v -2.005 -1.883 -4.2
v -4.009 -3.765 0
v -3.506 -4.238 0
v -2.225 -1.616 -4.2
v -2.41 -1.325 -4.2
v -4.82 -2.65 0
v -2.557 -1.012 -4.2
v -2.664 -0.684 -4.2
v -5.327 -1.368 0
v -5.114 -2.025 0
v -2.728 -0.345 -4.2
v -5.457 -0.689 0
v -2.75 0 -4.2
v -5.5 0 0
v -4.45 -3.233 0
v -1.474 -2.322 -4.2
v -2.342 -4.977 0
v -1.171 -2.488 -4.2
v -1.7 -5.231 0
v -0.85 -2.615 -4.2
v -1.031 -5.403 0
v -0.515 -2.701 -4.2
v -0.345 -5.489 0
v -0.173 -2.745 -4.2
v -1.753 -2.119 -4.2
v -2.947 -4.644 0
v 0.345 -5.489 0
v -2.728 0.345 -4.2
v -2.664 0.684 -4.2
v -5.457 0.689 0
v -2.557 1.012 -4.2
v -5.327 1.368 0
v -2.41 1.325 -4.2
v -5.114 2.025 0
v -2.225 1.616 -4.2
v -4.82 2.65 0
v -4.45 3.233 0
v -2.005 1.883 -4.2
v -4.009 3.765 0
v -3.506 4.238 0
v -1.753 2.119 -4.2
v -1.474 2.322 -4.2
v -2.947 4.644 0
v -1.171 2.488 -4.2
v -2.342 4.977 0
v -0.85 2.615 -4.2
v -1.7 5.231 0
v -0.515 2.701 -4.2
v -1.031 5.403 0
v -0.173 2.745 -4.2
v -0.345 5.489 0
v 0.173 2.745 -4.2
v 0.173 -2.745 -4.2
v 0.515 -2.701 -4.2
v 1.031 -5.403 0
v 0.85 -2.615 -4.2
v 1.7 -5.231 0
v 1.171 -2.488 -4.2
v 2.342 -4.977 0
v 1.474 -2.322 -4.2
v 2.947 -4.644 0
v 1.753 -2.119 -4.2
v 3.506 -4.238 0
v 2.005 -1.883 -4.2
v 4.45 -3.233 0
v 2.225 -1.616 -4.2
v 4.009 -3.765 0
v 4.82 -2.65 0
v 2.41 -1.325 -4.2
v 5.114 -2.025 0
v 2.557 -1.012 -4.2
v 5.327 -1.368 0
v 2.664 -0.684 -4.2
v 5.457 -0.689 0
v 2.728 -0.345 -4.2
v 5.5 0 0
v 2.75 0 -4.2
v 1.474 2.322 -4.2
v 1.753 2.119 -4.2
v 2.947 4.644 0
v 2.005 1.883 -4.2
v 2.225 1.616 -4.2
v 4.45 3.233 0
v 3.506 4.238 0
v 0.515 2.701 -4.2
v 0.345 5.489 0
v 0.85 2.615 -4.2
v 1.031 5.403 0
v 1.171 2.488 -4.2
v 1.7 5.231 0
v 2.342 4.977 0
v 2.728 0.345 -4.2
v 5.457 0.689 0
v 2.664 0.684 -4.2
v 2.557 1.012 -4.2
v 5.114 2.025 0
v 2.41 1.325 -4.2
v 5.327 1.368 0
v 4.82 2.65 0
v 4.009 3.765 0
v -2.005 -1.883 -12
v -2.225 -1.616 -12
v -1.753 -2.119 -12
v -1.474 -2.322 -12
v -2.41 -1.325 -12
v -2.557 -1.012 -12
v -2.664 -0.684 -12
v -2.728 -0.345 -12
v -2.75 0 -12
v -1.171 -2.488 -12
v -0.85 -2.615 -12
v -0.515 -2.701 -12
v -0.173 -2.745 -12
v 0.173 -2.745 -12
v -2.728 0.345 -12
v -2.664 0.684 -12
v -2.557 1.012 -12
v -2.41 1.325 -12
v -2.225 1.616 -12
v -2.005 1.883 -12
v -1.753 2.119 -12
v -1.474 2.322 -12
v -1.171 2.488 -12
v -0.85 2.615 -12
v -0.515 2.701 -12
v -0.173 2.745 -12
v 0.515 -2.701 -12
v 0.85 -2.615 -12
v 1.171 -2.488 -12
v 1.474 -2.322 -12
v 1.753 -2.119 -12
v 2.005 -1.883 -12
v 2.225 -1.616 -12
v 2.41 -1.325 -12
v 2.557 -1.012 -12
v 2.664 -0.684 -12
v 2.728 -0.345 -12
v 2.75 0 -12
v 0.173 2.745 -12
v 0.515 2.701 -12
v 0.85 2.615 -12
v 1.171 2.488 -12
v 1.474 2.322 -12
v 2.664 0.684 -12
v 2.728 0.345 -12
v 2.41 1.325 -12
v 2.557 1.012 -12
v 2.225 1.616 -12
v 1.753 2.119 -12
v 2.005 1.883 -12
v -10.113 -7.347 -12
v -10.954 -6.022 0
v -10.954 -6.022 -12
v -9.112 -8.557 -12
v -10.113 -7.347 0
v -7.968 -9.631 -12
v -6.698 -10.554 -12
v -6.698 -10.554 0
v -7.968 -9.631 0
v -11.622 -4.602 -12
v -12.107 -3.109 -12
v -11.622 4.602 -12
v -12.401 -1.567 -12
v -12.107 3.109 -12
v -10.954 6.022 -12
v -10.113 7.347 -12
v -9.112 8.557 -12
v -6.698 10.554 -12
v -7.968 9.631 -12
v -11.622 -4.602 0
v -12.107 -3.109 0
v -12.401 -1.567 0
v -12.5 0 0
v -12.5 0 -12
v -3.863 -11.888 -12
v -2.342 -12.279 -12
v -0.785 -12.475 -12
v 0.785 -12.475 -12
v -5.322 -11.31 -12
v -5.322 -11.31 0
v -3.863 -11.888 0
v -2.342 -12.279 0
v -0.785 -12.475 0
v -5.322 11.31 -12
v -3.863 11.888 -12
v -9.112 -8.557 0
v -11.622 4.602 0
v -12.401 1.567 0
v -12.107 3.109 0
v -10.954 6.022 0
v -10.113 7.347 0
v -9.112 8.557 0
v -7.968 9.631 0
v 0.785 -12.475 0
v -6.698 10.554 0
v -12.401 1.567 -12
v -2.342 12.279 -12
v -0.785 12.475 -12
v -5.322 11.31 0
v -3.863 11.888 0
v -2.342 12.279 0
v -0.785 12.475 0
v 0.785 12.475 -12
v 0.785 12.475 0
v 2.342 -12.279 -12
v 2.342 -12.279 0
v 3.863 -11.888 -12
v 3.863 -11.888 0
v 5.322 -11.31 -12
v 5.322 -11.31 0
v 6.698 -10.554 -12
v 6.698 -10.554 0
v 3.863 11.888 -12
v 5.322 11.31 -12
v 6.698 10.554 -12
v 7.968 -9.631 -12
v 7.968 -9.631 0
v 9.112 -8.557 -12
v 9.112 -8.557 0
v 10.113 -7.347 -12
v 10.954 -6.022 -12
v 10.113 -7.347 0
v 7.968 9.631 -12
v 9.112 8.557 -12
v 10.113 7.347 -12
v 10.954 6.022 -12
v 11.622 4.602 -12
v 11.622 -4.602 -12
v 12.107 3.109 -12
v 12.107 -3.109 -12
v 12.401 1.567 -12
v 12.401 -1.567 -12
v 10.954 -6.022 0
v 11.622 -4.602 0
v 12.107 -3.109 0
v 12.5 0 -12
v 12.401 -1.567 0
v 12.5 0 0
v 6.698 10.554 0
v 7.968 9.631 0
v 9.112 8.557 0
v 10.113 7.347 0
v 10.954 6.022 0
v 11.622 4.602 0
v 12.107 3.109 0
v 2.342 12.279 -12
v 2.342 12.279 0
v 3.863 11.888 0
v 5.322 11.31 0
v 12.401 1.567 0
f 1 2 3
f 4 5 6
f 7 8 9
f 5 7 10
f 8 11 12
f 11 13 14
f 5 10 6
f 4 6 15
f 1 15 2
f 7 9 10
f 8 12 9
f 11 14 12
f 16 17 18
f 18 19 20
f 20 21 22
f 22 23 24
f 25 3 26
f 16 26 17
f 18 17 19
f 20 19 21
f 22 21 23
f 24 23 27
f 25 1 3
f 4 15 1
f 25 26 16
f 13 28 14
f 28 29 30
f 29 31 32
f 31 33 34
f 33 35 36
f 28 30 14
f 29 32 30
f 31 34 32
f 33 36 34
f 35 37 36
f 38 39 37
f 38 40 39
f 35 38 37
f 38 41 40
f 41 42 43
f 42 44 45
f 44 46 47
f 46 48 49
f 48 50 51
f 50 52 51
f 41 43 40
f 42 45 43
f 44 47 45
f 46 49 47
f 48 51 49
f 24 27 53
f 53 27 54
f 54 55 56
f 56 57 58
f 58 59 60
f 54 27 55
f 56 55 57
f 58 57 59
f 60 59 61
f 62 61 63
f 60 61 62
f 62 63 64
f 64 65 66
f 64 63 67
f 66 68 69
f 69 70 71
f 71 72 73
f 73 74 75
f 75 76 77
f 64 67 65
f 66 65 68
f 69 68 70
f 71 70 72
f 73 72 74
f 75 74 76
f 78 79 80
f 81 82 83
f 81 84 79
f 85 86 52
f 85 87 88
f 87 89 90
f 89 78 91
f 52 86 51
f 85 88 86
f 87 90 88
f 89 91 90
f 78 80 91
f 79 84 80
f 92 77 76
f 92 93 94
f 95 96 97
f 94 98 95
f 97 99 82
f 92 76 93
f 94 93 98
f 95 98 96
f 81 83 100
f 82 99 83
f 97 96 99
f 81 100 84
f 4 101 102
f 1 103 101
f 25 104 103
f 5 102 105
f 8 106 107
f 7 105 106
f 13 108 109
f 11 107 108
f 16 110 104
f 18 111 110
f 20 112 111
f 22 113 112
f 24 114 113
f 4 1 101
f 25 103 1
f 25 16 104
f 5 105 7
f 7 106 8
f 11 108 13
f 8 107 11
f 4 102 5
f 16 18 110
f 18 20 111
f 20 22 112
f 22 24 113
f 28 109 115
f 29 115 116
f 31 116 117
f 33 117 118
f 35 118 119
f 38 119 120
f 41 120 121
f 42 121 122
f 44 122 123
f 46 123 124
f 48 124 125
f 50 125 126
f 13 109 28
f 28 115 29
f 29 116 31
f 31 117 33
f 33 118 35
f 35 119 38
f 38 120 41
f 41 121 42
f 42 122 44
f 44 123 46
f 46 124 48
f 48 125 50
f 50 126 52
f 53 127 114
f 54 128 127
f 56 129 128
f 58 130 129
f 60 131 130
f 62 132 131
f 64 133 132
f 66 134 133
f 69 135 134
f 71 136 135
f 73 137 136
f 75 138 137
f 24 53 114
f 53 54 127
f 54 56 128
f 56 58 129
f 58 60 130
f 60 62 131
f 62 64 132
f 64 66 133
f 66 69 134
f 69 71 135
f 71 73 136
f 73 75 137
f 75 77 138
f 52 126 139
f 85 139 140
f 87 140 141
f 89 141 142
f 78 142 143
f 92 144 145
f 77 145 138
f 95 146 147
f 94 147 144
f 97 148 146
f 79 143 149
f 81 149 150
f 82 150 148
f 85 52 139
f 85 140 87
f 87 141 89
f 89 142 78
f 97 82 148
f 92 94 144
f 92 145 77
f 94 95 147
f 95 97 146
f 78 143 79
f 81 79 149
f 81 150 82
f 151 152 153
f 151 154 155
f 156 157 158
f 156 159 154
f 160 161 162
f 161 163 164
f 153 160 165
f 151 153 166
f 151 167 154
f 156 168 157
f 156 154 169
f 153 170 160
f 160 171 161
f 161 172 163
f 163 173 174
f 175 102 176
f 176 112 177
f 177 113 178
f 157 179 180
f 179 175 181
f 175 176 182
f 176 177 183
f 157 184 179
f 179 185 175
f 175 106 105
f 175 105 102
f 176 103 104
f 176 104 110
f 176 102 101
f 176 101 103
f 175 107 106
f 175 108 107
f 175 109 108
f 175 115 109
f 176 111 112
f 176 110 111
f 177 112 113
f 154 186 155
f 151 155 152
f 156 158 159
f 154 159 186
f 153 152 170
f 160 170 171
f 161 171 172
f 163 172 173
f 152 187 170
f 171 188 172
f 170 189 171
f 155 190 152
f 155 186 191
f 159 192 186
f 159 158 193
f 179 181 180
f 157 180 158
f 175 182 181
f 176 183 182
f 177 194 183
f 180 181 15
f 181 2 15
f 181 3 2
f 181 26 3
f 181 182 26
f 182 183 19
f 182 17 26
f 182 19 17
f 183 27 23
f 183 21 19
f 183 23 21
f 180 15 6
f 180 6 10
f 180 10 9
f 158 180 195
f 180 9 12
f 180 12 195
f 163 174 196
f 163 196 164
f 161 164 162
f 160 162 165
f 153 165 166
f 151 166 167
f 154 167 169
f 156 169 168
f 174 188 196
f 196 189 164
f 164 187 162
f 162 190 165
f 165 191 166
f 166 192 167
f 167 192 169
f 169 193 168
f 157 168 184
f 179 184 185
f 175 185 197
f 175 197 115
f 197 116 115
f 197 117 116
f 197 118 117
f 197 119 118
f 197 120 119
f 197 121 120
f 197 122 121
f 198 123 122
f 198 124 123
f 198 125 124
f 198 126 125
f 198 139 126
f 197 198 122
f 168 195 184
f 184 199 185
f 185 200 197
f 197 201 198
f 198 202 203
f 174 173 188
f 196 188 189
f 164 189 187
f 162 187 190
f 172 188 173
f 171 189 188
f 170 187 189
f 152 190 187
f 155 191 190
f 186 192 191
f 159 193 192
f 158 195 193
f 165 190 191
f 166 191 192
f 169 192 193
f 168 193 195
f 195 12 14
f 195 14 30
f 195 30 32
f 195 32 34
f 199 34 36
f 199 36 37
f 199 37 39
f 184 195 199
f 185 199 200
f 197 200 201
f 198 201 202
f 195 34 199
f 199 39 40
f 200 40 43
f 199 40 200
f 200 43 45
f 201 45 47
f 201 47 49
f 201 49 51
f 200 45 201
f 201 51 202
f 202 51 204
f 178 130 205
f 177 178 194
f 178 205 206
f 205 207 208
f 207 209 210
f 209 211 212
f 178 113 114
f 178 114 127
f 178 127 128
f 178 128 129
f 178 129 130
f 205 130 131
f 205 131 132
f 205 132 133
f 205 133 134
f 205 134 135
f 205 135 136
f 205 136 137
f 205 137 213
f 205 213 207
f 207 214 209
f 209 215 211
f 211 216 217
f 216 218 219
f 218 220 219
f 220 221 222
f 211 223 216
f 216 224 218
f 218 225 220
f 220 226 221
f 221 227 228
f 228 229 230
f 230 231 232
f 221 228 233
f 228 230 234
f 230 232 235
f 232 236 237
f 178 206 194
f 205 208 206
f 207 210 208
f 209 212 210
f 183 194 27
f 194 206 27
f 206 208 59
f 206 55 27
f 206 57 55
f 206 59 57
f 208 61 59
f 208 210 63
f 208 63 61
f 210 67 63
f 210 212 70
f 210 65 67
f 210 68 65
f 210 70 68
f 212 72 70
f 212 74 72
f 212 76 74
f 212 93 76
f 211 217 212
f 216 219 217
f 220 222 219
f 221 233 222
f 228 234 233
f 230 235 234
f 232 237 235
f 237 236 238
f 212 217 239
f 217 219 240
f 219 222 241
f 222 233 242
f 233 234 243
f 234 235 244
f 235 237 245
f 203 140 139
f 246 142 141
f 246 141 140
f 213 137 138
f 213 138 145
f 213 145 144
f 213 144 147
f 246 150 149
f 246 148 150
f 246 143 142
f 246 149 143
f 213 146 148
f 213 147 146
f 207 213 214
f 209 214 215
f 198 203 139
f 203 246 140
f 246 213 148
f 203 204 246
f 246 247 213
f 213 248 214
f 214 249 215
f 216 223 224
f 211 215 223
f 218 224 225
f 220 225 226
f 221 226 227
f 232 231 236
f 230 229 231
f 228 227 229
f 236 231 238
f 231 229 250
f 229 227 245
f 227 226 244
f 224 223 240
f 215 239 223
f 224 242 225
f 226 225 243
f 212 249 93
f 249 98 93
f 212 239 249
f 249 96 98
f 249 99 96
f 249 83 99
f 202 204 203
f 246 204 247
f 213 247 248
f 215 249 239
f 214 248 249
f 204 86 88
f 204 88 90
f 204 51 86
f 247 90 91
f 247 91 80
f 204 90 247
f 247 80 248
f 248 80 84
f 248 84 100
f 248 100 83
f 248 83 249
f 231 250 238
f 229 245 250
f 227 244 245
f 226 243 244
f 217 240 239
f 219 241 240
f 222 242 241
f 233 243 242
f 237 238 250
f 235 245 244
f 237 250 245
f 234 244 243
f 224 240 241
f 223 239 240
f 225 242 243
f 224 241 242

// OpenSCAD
$fn = 50;


difference() {
	union() {
		translate(v = [0, 0, -12.0000000000]) {
			cylinder(h = 12, r = 12.5000000000);
		}
	}
	union() {
		translate(v = [0, 0, 0]) {
			rotate(a = [0, 0, 0]) {
				difference() {
					union() {
						translate(v = [0, 0, -15.0000000000]) {
							cylinder(h = 15, r = 2.2500000000);
						}
						translate(v = [0, 0, -4.2000000000]) {
							cylinder(h = 4.2000000000, r1 = 2.7500000000, r2 = 5.5000000000);
						}
						translate(v = [0, 0, -15.0000000000]) {
							cylinder(h = 15, r = 2.7500000000);
						}
						translate(v = [0, 0, -15.0000000000]) {
							cylinder(h = 15, r = 2.2500000000);
						}
					}
					union();
				}
			}
		}
	}
}
